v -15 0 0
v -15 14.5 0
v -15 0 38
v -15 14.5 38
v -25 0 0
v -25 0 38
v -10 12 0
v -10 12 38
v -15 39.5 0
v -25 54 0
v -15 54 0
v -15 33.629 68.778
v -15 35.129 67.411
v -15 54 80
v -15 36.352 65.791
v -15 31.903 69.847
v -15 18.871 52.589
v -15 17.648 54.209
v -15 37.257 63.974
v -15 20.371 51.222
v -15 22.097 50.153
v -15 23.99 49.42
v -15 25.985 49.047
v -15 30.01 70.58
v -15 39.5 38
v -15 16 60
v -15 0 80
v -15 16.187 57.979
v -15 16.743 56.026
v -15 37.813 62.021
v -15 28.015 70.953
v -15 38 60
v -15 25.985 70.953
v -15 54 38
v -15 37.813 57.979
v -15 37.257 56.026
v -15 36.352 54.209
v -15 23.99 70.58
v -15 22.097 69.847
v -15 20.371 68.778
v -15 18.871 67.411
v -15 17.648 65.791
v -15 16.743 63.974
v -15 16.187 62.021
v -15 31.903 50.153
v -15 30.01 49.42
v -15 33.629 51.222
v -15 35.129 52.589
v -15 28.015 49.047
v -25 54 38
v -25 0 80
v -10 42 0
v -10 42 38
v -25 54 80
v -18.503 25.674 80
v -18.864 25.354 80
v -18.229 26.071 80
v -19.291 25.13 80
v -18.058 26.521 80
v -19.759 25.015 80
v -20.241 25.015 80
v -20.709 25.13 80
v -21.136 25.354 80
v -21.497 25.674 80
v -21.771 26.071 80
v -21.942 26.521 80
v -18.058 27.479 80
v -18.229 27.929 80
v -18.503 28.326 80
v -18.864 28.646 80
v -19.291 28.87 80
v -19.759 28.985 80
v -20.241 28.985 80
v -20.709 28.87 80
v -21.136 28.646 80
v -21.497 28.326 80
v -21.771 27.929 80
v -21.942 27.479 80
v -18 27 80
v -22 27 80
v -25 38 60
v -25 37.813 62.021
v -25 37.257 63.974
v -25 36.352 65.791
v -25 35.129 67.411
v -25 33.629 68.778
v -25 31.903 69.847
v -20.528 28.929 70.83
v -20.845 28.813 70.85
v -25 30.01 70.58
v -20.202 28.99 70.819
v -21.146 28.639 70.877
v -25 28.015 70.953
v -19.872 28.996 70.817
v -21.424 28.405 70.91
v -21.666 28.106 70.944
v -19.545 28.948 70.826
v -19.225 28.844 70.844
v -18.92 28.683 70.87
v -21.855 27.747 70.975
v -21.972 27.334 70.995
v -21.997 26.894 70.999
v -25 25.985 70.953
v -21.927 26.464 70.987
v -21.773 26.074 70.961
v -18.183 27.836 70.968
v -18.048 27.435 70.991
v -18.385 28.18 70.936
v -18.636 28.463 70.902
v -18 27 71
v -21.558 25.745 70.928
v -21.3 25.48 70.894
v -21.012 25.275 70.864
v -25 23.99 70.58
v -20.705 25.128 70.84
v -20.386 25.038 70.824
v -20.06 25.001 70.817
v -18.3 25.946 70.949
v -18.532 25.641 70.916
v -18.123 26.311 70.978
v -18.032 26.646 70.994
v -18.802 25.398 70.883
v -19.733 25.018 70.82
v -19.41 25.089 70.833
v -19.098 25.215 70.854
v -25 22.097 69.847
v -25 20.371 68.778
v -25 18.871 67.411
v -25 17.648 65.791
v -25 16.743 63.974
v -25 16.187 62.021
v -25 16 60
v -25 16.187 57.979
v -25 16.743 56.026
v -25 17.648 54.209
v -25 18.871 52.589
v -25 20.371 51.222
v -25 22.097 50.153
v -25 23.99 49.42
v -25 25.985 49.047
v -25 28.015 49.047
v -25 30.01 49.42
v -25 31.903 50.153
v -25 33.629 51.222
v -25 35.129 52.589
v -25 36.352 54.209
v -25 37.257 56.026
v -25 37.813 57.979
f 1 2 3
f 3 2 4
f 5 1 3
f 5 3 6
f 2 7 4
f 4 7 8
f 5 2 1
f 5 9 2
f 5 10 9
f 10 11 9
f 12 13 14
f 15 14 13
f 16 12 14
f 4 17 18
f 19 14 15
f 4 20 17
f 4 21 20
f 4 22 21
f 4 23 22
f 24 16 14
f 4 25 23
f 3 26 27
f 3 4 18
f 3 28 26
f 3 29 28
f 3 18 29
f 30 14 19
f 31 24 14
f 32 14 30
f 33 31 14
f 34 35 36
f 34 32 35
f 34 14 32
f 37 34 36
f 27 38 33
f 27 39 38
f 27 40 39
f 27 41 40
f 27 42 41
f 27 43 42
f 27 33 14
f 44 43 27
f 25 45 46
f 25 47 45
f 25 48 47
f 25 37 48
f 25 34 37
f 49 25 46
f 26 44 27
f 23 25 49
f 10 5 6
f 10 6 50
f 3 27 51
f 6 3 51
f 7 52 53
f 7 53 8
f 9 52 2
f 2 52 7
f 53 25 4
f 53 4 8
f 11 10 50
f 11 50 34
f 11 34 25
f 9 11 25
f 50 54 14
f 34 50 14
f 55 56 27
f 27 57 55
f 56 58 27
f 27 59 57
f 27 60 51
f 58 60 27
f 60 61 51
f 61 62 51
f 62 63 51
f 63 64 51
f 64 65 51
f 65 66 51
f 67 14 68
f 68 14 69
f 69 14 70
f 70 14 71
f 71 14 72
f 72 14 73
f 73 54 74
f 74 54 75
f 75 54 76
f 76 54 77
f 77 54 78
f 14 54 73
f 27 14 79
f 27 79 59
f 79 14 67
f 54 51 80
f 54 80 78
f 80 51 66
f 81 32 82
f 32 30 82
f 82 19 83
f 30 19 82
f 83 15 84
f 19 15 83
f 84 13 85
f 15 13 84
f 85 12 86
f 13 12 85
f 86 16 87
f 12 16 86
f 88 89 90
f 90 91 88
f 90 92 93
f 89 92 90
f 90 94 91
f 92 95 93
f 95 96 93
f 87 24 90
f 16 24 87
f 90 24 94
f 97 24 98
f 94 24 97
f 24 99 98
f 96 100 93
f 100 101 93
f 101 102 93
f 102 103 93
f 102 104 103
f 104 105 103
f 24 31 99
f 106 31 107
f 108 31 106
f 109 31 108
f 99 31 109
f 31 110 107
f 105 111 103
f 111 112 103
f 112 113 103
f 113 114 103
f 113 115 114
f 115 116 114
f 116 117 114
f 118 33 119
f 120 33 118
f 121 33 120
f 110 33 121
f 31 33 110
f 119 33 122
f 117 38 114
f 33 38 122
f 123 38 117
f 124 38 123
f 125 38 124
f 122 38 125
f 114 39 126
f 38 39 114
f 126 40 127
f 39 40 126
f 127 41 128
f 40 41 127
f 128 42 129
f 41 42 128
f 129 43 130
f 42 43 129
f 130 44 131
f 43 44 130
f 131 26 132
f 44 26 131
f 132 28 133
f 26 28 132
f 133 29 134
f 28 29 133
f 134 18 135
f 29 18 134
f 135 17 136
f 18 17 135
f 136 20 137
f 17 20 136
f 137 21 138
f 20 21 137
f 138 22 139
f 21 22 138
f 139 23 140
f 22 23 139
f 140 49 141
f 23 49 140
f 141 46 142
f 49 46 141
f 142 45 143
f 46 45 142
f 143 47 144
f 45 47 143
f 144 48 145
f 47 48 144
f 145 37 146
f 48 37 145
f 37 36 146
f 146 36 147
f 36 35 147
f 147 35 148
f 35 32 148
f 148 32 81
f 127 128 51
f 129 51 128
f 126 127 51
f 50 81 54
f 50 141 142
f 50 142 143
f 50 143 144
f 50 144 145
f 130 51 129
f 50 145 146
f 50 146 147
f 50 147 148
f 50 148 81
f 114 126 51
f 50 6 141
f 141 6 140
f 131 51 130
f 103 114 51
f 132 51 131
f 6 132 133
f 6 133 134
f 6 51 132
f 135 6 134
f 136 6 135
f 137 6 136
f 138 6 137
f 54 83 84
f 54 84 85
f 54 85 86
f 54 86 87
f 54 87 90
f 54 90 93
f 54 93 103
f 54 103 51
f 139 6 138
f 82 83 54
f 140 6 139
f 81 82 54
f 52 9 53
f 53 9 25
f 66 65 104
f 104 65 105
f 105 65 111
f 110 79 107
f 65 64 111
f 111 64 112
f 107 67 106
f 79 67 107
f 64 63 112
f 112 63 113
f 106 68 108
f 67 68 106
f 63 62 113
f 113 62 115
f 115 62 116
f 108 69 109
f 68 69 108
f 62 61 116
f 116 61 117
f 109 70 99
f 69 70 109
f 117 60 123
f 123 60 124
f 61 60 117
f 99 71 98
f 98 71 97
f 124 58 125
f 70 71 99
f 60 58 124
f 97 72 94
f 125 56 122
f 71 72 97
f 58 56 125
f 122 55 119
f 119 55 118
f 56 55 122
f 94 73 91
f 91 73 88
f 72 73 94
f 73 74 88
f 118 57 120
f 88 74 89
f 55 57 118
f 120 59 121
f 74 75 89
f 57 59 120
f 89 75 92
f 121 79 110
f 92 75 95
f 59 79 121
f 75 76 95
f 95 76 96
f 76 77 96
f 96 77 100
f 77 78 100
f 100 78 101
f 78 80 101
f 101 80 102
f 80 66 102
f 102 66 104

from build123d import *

# Parameters (mm, degrees)
PAD_DEPTH       = 38
SKETCH_W        = 10
SKETCH_H        = 54
PAD001_DEPTH    = 80
SKETCH002_R     = 11
POCKET_DEPTH    = 25.001
SKETCH003_R     = 2
POCKET001_DEPTH = 10


with BuildPart() as part:
    # Sketch001 → Pad (new body)
    with BuildSketch(Plane.XY):
        Polygon((-15, 0), (-15, 14.5), (-10, 12), (-10, 42), (-15, 39.5), (-15, 54), (-25, 54), (-25, 0), align=None)
    extrude(amount=PAD_DEPTH)

    # Sketch → Pad001 (join)
    with BuildSketch(Plane.XY):
        with Locations((-20, 27)):
            Rectangle(SKETCH_W, SKETCH_H)
    extrude(amount=PAD001_DEPTH)

    # Sketch002 → Pocket (cut, through all)
    with BuildSketch(Plane.YZ):
        with Locations((27, 60)):
            Circle(SKETCH002_R)
    extrude(amount=-POCKET_DEPTH, mode=Mode.SUBTRACT)

    # Sketch003 → Pocket001 (cut)
    with BuildSketch(Plane.XY.offset(80)):
        with Locations((-20, 27)):
            Circle(SKETCH003_R)
    extrude(amount=-POCKET001_DEPTH, mode=Mode.SUBTRACT)


solid = part.part
